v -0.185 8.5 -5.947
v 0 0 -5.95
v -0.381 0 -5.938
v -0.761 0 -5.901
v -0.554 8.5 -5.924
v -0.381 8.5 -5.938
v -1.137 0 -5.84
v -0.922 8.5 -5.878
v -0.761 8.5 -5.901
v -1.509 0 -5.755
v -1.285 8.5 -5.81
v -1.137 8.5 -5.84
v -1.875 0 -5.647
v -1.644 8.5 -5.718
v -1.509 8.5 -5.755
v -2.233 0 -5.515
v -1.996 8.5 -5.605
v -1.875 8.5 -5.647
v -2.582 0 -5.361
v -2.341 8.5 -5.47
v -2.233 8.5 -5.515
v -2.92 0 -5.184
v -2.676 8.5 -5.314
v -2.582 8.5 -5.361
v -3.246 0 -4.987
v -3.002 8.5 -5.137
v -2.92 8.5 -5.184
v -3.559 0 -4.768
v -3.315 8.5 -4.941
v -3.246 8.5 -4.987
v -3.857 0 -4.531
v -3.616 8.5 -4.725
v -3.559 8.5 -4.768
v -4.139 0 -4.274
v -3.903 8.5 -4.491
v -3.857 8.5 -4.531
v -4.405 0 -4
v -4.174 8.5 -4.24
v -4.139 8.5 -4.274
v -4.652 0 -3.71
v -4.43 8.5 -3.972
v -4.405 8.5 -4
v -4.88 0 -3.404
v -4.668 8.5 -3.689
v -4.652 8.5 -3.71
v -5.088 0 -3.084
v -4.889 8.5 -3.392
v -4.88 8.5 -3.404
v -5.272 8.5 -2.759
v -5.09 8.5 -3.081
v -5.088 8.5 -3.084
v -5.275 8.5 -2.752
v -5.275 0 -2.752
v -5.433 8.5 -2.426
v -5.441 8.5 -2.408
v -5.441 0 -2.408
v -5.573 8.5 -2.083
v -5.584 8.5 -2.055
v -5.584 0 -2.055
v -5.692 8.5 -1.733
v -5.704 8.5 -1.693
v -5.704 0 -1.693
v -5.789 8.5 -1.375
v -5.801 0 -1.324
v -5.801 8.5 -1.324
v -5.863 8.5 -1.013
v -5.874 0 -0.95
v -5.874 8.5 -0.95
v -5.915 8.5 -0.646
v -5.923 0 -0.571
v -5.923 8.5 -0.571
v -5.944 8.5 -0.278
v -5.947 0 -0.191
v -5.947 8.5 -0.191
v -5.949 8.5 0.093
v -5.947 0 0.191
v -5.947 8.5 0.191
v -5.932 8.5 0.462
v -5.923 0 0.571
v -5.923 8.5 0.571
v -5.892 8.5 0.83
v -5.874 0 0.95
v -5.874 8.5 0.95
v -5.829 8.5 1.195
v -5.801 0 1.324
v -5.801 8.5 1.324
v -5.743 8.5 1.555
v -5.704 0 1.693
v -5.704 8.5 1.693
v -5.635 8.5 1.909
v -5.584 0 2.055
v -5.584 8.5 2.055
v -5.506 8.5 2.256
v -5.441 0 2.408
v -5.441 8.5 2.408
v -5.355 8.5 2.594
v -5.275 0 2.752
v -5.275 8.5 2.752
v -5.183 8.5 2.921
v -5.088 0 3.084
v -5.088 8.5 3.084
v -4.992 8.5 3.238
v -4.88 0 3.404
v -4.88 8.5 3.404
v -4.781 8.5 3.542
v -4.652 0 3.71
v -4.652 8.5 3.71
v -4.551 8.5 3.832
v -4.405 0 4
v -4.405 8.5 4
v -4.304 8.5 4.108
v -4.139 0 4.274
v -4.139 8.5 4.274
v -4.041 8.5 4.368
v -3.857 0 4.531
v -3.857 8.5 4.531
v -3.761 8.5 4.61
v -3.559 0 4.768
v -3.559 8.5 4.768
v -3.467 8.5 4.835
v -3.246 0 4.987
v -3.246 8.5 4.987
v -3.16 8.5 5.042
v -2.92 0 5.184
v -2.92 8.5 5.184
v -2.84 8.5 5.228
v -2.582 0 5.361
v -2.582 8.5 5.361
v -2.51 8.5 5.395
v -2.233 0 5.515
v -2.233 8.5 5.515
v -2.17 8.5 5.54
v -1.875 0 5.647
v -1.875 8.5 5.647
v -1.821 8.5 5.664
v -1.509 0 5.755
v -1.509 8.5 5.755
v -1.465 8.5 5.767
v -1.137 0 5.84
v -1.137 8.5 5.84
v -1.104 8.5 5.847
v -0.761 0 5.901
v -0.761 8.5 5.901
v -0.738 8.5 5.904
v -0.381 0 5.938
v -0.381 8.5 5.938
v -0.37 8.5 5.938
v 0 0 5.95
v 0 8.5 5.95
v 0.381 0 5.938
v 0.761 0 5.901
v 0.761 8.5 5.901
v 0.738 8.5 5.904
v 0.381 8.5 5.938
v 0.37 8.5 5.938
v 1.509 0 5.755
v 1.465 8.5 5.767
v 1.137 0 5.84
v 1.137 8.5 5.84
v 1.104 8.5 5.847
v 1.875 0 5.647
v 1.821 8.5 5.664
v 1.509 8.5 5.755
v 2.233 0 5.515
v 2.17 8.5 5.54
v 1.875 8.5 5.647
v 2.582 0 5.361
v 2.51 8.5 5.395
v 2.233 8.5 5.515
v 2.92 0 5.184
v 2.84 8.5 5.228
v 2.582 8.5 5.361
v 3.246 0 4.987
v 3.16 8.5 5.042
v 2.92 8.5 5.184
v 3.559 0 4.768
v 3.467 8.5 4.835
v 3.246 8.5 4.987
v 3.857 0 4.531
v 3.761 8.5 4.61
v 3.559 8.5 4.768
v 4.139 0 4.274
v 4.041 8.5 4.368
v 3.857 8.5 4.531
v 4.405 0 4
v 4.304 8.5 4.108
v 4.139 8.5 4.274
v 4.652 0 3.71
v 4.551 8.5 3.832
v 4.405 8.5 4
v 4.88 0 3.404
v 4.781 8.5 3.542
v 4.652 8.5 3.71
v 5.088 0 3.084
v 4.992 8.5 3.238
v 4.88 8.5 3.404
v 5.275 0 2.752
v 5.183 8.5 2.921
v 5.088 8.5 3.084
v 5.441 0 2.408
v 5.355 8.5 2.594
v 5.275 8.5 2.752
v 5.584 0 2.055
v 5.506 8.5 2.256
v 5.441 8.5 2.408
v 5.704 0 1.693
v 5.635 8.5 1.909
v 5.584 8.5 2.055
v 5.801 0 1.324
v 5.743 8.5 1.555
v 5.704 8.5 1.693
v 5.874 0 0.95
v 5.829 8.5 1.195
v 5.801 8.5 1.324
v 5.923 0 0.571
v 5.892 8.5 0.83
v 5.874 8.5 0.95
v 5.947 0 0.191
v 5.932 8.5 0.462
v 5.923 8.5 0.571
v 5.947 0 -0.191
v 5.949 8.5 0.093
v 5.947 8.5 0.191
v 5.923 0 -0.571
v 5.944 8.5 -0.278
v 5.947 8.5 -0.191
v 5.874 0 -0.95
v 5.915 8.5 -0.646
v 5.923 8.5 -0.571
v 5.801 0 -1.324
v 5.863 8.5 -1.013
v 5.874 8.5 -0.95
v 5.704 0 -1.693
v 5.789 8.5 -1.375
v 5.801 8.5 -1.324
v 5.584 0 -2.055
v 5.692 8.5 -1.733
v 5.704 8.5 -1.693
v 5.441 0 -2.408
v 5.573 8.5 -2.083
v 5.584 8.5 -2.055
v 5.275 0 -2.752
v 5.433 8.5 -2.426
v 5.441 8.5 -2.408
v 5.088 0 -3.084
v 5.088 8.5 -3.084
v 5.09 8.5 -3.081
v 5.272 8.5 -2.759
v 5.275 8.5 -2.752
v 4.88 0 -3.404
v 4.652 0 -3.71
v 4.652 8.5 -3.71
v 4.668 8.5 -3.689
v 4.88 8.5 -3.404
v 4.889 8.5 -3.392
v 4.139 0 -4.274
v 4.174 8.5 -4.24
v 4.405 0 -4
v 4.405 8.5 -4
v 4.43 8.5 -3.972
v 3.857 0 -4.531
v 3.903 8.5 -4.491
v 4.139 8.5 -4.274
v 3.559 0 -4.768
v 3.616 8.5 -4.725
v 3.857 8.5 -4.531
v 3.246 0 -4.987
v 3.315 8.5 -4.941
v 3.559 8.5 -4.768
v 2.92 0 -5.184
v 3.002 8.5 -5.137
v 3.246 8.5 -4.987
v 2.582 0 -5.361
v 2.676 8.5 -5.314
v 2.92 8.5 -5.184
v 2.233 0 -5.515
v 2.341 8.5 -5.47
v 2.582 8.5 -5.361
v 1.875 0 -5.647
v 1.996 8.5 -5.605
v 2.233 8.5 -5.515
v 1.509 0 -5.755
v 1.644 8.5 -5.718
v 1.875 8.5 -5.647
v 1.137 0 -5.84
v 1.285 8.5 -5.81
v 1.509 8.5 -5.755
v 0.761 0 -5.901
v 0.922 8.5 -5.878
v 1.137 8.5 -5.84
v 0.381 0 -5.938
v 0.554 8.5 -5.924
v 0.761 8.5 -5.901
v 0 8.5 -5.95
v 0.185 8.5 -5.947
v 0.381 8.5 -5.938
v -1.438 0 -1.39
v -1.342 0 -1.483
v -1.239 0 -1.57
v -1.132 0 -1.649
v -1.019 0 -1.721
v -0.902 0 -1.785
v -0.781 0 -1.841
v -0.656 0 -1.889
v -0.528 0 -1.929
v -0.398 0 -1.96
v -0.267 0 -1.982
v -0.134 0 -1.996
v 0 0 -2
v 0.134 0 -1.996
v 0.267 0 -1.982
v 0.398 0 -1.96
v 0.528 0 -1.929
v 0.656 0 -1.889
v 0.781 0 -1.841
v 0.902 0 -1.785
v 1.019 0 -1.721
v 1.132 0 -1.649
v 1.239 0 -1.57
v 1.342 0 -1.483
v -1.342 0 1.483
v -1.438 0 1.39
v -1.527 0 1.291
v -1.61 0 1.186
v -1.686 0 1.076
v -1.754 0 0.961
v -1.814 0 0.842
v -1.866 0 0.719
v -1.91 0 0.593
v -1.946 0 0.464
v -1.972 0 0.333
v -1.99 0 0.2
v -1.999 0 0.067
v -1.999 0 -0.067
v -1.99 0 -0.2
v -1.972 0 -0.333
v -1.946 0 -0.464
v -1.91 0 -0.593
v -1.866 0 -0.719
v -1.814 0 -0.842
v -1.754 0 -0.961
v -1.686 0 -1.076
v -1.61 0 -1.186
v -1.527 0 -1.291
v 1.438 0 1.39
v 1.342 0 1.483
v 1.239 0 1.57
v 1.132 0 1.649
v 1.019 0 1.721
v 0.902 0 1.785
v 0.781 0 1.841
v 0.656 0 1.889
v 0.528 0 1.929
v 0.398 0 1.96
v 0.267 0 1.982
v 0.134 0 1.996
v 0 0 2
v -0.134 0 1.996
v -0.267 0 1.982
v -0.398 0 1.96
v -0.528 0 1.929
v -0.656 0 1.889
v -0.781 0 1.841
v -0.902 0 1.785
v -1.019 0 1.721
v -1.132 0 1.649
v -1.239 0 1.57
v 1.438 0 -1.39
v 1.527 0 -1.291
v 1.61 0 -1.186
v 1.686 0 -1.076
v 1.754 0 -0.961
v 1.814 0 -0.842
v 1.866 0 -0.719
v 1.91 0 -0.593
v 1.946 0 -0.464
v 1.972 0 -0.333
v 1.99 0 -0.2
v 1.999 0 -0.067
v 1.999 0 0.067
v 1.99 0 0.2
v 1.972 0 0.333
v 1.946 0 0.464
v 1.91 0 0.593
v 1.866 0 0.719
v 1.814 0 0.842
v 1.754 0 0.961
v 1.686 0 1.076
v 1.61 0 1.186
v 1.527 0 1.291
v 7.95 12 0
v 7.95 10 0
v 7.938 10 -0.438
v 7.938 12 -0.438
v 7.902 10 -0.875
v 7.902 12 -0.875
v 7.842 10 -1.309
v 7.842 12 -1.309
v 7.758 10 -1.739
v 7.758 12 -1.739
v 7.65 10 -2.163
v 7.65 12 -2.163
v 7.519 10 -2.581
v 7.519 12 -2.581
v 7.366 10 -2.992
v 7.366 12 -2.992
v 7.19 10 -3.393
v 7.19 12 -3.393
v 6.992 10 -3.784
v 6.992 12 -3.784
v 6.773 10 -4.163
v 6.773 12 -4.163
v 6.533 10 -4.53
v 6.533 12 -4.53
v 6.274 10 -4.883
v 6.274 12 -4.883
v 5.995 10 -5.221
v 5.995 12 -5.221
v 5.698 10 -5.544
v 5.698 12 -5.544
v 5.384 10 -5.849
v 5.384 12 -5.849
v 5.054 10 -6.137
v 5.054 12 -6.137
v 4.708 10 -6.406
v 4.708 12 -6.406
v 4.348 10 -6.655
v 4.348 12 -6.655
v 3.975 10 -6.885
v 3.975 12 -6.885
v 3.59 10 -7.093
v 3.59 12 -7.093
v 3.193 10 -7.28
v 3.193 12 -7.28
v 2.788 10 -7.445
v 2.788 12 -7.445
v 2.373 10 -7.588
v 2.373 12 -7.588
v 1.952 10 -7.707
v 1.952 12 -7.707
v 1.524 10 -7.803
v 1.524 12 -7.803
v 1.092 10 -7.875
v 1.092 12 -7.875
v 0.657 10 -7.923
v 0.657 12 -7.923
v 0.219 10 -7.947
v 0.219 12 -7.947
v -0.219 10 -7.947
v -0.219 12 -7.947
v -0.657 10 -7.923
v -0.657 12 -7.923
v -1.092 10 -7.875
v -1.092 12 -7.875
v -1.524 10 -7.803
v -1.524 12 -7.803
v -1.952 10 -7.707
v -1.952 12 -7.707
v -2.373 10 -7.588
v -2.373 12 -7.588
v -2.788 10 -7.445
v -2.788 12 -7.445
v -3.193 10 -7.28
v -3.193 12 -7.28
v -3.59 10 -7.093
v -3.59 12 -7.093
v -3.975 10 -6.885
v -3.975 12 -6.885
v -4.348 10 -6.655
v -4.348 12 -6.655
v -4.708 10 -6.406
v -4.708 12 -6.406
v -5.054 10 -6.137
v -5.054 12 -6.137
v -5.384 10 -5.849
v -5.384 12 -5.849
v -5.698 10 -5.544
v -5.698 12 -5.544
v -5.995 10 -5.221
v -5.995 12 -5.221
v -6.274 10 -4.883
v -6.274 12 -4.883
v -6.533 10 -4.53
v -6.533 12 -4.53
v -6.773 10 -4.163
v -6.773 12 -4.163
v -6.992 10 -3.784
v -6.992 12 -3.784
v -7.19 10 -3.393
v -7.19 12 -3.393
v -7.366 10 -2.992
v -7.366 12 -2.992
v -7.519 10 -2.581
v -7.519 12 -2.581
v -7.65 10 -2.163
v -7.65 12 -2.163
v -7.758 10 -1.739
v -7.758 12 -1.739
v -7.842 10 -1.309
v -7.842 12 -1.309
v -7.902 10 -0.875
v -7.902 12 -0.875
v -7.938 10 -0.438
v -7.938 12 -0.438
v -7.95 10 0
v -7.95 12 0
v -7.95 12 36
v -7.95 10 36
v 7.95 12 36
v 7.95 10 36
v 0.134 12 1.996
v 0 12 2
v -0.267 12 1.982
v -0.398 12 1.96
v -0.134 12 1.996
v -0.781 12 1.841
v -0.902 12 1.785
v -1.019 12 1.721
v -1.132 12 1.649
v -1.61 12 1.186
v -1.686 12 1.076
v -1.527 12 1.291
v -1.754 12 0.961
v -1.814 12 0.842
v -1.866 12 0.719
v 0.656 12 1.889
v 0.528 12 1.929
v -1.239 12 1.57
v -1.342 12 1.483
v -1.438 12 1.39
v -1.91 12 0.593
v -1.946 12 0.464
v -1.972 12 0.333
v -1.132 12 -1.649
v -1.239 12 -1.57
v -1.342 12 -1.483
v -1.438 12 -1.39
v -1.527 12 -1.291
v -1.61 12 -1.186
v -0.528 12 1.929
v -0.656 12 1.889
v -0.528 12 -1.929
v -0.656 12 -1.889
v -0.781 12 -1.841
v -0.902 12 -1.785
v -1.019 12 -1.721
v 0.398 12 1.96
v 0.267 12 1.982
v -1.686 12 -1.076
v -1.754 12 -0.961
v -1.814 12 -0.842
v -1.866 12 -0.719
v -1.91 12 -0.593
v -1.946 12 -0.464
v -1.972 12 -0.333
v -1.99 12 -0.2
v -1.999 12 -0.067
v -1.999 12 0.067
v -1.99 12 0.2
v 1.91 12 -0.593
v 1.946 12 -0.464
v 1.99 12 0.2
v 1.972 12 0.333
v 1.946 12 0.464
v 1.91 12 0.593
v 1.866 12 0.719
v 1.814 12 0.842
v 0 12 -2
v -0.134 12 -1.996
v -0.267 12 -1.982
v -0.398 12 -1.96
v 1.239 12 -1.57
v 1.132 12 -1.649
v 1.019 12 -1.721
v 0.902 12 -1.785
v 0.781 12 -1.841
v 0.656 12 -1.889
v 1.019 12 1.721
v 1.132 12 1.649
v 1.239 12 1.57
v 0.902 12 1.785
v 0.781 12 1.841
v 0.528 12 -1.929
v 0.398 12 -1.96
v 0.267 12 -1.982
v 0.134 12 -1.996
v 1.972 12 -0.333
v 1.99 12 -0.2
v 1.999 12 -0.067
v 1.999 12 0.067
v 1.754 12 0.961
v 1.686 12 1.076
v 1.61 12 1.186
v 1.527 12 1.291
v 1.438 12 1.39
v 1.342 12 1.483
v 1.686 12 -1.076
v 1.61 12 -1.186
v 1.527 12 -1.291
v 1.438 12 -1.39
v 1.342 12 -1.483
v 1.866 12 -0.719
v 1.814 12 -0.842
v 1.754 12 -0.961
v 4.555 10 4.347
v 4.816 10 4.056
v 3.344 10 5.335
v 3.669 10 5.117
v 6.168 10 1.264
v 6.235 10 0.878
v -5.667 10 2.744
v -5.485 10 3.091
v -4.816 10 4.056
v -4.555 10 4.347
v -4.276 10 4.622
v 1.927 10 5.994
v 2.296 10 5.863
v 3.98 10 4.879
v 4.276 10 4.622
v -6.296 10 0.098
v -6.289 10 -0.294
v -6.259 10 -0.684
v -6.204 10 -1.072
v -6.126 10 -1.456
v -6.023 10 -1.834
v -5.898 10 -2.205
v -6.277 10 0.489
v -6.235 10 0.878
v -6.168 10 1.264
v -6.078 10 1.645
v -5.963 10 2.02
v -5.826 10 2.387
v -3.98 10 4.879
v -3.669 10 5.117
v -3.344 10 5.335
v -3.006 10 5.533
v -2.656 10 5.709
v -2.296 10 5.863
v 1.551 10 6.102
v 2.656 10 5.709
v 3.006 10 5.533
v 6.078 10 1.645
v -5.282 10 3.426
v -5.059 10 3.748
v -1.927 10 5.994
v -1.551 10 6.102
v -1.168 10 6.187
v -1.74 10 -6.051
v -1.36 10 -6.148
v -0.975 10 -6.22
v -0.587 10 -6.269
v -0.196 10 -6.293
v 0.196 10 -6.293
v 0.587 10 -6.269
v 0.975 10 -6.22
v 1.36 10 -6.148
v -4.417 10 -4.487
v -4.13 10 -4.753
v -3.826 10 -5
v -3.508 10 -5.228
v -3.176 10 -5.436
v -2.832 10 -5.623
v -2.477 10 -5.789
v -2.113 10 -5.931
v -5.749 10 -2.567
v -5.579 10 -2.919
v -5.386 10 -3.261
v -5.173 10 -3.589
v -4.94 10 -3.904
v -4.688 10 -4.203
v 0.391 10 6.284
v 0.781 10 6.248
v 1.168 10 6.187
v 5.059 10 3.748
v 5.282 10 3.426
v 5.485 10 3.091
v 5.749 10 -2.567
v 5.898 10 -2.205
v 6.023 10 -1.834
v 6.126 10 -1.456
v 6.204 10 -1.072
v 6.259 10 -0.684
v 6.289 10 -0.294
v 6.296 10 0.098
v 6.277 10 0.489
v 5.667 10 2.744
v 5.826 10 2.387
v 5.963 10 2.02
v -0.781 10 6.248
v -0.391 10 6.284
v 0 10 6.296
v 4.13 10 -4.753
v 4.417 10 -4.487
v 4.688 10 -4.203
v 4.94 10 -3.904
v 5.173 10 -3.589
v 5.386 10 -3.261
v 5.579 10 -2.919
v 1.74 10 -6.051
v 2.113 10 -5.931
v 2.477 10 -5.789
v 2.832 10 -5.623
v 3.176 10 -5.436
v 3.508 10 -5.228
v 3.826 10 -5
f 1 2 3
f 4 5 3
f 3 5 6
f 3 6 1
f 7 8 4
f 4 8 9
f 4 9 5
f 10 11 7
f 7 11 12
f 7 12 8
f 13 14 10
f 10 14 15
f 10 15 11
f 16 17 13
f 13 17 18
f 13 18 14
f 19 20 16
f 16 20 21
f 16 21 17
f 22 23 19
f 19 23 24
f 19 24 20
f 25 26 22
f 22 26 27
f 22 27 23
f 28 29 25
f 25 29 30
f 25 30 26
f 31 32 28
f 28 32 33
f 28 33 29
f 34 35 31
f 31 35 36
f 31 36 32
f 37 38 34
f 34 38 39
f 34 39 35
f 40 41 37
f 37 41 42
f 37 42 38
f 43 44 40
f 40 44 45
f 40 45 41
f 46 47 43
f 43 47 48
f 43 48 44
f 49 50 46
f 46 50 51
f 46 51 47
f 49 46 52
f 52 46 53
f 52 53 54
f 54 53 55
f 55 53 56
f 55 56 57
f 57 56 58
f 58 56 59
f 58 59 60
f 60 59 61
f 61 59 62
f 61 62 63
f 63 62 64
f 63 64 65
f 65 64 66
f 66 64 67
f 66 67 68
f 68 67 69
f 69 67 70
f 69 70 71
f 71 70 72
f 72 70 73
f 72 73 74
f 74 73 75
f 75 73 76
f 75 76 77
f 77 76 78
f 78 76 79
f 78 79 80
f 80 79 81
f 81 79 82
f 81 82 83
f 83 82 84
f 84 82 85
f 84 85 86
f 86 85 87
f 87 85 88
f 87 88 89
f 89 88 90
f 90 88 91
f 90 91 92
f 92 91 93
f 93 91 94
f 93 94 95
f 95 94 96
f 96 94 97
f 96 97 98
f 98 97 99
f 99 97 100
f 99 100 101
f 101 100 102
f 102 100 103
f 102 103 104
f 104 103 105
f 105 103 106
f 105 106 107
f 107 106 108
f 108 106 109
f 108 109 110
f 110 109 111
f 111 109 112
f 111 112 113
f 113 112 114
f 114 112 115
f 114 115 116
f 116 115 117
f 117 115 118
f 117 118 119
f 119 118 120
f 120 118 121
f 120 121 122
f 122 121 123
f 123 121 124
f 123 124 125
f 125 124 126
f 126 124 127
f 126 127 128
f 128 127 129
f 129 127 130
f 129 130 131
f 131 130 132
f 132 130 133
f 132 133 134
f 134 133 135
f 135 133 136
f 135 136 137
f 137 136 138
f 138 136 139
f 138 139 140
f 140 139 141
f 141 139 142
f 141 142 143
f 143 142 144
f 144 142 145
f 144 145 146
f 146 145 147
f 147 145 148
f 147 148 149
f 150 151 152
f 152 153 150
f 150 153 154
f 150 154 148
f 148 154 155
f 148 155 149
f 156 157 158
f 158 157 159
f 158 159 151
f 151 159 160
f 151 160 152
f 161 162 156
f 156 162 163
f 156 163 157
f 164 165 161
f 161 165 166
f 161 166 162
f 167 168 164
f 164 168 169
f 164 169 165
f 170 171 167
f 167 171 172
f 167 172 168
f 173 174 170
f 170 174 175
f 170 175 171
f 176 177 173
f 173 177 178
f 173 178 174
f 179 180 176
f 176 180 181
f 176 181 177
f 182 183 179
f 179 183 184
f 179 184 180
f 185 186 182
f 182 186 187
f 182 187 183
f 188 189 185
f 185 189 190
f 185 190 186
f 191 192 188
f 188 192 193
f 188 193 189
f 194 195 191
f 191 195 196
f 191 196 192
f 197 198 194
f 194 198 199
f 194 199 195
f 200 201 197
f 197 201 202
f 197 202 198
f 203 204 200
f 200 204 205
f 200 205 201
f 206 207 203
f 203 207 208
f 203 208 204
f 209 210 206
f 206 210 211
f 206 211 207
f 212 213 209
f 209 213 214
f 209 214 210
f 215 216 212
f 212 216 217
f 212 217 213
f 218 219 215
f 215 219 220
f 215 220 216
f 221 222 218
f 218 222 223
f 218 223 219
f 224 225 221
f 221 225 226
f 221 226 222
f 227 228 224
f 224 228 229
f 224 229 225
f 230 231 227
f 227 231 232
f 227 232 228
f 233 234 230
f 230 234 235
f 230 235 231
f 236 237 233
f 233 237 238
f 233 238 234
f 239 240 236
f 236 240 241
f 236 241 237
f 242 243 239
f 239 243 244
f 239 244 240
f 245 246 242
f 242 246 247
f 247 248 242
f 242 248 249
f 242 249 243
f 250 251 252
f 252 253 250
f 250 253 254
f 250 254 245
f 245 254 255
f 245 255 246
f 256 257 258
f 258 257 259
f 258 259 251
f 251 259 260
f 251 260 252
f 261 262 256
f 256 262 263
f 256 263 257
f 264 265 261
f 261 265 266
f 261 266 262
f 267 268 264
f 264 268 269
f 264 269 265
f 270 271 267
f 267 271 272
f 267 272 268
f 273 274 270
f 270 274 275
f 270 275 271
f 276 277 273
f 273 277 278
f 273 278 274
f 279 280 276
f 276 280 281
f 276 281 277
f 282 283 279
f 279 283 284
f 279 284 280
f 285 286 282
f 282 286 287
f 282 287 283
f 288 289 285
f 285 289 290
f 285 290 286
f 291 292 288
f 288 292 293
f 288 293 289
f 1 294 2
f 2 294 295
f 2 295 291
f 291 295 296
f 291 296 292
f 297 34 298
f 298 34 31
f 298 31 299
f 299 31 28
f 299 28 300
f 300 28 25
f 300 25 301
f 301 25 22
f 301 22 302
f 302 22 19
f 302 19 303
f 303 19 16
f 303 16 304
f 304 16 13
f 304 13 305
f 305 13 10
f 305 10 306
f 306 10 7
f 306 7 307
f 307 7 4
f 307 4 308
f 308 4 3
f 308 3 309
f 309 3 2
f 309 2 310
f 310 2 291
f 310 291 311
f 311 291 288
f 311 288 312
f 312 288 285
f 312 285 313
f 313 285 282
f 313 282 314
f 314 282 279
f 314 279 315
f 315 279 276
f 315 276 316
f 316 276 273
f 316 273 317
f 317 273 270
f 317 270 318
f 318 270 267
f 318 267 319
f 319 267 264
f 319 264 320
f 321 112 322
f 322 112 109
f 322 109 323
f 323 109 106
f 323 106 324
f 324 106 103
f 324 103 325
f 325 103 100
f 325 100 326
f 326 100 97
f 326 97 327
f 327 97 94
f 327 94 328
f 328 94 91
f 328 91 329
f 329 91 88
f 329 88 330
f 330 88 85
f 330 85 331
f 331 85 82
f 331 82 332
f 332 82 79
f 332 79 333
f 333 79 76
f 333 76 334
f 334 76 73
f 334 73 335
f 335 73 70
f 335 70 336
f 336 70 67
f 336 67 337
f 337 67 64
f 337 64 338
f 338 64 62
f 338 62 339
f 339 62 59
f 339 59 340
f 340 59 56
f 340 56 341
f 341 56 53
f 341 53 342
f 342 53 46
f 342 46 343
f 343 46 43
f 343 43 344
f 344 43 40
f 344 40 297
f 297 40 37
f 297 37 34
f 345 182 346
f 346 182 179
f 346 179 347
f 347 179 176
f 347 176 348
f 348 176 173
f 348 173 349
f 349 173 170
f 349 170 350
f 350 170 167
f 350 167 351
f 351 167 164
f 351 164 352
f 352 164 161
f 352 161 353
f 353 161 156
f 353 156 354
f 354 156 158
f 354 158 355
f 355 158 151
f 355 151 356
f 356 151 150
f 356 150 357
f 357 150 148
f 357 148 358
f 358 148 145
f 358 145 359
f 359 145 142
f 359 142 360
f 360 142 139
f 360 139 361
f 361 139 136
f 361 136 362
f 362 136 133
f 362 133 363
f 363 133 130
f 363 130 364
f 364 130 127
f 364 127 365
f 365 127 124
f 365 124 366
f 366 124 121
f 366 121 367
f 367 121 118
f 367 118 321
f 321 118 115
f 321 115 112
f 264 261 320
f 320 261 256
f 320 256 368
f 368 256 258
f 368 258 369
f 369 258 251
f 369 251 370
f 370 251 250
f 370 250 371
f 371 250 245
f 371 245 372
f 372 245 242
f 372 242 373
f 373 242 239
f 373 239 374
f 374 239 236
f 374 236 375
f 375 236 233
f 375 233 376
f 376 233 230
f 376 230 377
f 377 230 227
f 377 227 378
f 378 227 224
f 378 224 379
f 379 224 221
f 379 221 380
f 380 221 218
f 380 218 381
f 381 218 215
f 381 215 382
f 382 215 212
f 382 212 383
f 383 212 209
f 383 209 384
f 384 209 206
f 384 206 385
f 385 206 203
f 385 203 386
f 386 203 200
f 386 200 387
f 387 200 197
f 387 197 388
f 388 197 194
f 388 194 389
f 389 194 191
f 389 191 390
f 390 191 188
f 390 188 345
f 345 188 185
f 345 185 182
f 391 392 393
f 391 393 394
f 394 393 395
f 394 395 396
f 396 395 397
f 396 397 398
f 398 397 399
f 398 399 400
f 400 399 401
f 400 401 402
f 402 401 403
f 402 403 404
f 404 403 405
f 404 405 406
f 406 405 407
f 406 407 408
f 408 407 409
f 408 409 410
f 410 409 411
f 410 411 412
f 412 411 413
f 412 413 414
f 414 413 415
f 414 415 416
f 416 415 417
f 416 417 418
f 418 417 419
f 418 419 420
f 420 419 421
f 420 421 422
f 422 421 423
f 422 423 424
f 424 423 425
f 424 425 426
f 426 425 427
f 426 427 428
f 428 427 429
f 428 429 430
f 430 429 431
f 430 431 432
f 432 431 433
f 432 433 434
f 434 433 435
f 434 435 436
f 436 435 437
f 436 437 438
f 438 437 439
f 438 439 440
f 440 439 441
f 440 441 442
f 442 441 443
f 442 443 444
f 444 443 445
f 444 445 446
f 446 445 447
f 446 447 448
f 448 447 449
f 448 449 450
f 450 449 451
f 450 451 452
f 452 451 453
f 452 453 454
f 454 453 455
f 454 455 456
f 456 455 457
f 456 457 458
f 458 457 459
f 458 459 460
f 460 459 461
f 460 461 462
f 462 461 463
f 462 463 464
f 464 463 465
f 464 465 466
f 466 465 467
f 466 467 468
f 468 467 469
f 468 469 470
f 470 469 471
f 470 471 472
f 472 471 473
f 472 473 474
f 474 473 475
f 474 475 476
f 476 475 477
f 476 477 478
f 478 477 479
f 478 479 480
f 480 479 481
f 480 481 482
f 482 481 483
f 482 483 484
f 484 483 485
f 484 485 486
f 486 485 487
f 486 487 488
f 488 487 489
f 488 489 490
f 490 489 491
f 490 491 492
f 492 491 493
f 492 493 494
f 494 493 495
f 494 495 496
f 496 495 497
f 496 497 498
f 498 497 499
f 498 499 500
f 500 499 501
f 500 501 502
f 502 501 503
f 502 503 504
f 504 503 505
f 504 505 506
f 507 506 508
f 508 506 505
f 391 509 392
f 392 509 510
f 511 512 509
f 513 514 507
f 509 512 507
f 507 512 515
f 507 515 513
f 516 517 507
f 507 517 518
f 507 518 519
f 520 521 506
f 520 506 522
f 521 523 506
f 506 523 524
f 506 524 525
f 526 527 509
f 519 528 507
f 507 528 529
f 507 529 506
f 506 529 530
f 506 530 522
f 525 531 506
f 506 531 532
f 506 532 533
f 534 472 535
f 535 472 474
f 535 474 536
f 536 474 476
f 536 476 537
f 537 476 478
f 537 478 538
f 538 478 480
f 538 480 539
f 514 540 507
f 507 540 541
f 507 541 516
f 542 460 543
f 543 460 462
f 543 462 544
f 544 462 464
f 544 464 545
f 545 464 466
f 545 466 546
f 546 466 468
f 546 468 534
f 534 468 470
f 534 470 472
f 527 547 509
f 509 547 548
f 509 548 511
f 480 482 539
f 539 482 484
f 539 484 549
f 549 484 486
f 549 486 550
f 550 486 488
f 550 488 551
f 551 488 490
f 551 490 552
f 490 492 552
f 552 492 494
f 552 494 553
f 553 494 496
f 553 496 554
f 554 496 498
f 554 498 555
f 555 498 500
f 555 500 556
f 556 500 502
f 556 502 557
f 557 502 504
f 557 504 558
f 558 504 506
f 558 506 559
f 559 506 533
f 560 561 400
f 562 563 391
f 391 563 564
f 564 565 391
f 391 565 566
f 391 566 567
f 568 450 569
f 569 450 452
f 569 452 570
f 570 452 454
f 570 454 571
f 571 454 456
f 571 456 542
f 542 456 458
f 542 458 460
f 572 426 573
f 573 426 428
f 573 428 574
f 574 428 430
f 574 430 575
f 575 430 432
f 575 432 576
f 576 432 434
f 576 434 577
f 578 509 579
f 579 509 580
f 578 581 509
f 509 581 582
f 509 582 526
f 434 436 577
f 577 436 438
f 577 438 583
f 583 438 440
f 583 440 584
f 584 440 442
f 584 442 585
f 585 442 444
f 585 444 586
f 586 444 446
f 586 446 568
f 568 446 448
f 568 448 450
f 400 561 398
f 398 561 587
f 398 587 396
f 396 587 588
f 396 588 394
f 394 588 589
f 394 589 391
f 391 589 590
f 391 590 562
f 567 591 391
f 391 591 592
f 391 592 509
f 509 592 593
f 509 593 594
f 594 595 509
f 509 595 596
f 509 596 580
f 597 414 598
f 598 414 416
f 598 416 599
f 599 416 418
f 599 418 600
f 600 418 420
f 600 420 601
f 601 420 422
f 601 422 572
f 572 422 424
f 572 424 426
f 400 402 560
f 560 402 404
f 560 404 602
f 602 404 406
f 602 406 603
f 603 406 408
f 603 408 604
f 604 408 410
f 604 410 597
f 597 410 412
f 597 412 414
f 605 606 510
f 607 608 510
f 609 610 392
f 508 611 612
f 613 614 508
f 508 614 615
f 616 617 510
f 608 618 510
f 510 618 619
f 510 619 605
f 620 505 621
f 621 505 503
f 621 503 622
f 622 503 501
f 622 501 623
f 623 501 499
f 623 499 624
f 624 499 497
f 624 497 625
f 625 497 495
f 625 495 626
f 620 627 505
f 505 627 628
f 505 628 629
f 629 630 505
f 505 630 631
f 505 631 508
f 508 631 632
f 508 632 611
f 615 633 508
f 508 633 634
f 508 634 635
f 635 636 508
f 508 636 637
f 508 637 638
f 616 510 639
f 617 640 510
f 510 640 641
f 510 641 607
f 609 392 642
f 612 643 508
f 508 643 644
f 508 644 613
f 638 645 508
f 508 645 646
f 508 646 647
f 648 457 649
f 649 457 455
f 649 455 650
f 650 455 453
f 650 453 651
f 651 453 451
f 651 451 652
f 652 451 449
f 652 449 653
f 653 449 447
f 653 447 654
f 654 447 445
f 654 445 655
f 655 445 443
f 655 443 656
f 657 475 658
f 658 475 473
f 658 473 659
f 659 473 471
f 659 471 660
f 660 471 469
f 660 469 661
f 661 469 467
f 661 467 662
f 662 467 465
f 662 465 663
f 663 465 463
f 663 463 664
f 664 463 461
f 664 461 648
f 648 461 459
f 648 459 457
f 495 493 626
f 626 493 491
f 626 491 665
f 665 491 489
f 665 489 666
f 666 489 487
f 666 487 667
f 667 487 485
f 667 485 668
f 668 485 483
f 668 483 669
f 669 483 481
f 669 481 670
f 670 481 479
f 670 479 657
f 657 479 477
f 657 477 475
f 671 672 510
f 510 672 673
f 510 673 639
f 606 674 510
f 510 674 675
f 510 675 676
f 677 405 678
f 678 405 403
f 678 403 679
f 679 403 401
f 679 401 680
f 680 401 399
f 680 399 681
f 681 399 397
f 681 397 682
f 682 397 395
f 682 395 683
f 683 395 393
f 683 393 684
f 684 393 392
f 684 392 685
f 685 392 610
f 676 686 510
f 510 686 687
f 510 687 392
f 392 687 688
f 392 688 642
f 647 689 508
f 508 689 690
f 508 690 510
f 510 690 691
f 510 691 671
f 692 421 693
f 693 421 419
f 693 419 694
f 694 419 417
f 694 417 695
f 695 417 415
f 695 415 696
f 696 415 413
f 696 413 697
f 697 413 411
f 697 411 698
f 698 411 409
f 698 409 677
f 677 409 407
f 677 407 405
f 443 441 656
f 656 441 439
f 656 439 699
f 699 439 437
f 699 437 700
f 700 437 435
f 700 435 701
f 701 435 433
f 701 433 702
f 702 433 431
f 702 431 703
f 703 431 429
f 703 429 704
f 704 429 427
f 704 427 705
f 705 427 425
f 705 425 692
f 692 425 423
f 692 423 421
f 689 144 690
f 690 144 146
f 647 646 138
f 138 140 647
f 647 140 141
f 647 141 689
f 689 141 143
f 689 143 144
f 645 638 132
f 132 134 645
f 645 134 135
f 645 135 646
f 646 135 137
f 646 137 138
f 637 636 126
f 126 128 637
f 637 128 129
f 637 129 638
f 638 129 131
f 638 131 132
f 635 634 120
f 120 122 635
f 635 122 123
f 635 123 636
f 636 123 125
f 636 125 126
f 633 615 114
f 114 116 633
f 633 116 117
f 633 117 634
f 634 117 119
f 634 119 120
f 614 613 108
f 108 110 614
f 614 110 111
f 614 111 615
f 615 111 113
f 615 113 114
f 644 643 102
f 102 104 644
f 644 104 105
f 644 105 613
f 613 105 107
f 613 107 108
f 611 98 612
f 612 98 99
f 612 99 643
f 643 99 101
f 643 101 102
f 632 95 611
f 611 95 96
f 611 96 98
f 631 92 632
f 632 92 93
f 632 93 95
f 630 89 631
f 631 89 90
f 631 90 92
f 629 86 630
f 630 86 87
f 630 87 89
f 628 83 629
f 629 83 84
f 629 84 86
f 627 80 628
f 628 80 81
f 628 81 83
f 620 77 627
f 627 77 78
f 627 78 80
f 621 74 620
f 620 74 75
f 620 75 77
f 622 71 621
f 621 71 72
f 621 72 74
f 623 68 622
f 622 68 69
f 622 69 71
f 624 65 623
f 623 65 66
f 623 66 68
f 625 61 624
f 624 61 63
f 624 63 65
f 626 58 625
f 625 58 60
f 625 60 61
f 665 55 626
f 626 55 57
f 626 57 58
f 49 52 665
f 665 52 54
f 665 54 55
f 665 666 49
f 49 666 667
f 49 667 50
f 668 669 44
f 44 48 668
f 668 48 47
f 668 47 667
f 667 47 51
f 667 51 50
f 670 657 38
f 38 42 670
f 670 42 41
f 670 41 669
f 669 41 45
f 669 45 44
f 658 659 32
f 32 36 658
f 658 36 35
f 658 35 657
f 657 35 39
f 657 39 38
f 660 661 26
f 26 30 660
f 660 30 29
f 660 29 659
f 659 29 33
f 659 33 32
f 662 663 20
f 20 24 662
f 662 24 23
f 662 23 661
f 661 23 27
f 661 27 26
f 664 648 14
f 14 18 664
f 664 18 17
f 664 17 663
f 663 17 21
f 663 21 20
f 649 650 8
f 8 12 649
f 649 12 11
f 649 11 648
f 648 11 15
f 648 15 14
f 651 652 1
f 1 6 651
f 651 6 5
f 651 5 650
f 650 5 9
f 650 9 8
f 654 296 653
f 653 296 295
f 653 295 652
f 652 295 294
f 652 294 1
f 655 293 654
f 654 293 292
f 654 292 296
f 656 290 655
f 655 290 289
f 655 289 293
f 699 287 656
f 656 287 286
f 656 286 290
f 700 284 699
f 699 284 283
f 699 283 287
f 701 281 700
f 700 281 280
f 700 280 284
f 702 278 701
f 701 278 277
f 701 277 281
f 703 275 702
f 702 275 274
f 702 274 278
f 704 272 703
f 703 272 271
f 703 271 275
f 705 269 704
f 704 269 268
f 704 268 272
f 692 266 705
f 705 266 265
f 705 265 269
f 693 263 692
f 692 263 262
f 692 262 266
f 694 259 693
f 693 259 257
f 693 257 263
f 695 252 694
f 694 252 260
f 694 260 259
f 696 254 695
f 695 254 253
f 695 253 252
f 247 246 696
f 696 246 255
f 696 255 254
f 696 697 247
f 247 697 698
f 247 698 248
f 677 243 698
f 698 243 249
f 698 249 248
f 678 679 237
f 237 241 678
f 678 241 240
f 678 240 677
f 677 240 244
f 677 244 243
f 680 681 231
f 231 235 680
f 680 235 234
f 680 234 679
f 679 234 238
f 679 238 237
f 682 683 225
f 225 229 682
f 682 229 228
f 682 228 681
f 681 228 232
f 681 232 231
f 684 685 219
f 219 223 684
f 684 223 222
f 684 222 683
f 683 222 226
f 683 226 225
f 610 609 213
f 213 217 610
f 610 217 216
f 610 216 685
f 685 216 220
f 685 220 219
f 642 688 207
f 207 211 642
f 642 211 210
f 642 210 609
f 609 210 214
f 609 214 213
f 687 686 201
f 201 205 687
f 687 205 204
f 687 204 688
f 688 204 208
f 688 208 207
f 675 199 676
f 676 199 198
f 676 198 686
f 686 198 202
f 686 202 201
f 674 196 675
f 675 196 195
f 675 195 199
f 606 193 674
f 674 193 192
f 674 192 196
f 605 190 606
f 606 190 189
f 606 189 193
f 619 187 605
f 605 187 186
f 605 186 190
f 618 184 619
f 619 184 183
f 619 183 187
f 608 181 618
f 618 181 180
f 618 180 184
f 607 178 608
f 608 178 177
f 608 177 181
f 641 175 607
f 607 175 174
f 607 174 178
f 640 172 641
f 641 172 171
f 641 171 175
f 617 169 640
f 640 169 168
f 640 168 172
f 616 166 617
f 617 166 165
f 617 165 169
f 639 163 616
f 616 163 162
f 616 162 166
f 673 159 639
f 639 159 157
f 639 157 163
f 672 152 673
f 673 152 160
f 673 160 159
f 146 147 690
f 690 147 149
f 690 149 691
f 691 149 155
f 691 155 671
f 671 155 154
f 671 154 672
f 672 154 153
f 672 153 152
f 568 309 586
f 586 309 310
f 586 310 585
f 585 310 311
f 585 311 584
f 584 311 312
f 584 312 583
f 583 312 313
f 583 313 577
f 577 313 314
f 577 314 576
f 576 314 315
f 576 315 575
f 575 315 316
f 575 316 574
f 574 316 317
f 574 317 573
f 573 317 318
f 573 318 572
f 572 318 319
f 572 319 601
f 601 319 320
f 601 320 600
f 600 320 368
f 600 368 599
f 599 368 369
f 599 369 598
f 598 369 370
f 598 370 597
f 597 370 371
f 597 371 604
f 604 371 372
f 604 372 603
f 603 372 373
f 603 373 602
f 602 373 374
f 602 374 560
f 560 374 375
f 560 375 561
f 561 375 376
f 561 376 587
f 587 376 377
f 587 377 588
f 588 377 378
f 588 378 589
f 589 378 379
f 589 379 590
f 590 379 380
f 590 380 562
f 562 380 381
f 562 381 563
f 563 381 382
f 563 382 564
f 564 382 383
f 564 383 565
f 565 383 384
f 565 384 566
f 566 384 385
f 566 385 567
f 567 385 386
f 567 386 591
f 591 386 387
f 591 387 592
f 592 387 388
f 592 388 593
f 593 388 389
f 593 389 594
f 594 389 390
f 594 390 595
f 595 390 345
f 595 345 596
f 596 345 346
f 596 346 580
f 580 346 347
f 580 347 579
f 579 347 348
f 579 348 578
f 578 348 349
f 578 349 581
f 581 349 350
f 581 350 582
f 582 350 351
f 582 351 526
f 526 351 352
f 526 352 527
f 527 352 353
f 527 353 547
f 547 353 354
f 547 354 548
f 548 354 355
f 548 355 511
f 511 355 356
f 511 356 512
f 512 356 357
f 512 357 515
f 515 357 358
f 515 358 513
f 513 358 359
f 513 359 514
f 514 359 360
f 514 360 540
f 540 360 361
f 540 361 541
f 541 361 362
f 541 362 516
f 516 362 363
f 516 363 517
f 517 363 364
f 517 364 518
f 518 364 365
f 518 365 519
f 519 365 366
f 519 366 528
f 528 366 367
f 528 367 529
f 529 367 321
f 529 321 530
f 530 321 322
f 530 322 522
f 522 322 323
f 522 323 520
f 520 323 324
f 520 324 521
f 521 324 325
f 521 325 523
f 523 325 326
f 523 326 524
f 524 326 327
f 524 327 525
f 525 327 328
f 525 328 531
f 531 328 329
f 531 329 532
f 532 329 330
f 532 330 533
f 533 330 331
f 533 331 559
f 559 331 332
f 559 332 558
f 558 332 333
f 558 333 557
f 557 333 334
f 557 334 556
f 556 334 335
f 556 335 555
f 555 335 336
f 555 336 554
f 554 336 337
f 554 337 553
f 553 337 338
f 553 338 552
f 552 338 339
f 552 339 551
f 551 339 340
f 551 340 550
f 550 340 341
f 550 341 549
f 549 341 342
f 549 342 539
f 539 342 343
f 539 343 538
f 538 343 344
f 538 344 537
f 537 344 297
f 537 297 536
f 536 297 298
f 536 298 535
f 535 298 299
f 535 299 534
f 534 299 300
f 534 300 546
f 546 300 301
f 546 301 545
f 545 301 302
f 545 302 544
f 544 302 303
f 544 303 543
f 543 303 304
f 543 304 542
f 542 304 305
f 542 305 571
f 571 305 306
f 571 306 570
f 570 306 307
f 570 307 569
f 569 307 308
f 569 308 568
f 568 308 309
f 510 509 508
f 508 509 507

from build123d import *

# Parameters (mm, degrees)
SKETCH1_R           = 5.95
BOSS_EXTRUDE1_DEPTH = 10
BOSS_EXTRUDE2_DEPTH = 2
CHAMFER1_SIZE       = 1.5
CHAMFER1_SIZE2      = 0.346302287
SKETCH3_R           = 2
CUT_EXTRUDE1_DEPTH  = 13
SKETCH4_W           = 15.9
SKETCH4_H           = 2
BOSS_EXTRUDE3_DEPTH = 20


with BuildPart() as part:
    # Sketch1 → Boss-Extrude1 (new body)
    with BuildSketch(Plane(origin=(0, 0, 0), x_dir=(1, 0, 0), z_dir=(0, 1, 0))):
        Circle(SKETCH1_R)
    extrude(amount=BOSS_EXTRUDE1_DEPTH)

    # Sketch2 → Boss-Extrude2 (add)
    with BuildSketch(Plane(origin=(0, 10, 0), x_dir=(1, 0, 0), z_dir=(0, 1, 0))):
        with BuildLine():
            Line((-7.95, 0), (-7.95, -16))
            Line((-7.95, -16), (7.95, -16))
            Line((7.95, -16), (7.95, 0))
            ThreePointArc((7.95, 0), (0, 7.95), (-7.95, 0))
        make_face()
    extrude(amount=BOSS_EXTRUDE2_DEPTH)

    # Chamfer1
    chamfer1_edges = [part.edges().sort_by_distance(p)[0] for p in [
        (-5.95, 10, 0),
    ]]
    chamfer1_side = [part.faces().sort_by_distance(p)[0] for p in [
        (-5.95, 5, 0),
    ]]
    chamfer(chamfer1_edges, length=CHAMFER1_SIZE, length2=CHAMFER1_SIZE2, reference=chamfer1_side[0])

    # Sketch3 → Cut-Extrude1 (cut, through all)
    with BuildSketch(Plane.XZ):
        Circle(SKETCH3_R)
    extrude(amount=-CUT_EXTRUDE1_DEPTH, mode=Mode.SUBTRACT)

    # Sketch4 → Boss-Extrude3 (add)
    with BuildSketch(Plane.XY.offset(16)):
        with Locations((0, 11)):
            Rectangle(SKETCH4_W, SKETCH4_H)
    extrude(amount=BOSS_EXTRUDE3_DEPTH)


solid = part.part
